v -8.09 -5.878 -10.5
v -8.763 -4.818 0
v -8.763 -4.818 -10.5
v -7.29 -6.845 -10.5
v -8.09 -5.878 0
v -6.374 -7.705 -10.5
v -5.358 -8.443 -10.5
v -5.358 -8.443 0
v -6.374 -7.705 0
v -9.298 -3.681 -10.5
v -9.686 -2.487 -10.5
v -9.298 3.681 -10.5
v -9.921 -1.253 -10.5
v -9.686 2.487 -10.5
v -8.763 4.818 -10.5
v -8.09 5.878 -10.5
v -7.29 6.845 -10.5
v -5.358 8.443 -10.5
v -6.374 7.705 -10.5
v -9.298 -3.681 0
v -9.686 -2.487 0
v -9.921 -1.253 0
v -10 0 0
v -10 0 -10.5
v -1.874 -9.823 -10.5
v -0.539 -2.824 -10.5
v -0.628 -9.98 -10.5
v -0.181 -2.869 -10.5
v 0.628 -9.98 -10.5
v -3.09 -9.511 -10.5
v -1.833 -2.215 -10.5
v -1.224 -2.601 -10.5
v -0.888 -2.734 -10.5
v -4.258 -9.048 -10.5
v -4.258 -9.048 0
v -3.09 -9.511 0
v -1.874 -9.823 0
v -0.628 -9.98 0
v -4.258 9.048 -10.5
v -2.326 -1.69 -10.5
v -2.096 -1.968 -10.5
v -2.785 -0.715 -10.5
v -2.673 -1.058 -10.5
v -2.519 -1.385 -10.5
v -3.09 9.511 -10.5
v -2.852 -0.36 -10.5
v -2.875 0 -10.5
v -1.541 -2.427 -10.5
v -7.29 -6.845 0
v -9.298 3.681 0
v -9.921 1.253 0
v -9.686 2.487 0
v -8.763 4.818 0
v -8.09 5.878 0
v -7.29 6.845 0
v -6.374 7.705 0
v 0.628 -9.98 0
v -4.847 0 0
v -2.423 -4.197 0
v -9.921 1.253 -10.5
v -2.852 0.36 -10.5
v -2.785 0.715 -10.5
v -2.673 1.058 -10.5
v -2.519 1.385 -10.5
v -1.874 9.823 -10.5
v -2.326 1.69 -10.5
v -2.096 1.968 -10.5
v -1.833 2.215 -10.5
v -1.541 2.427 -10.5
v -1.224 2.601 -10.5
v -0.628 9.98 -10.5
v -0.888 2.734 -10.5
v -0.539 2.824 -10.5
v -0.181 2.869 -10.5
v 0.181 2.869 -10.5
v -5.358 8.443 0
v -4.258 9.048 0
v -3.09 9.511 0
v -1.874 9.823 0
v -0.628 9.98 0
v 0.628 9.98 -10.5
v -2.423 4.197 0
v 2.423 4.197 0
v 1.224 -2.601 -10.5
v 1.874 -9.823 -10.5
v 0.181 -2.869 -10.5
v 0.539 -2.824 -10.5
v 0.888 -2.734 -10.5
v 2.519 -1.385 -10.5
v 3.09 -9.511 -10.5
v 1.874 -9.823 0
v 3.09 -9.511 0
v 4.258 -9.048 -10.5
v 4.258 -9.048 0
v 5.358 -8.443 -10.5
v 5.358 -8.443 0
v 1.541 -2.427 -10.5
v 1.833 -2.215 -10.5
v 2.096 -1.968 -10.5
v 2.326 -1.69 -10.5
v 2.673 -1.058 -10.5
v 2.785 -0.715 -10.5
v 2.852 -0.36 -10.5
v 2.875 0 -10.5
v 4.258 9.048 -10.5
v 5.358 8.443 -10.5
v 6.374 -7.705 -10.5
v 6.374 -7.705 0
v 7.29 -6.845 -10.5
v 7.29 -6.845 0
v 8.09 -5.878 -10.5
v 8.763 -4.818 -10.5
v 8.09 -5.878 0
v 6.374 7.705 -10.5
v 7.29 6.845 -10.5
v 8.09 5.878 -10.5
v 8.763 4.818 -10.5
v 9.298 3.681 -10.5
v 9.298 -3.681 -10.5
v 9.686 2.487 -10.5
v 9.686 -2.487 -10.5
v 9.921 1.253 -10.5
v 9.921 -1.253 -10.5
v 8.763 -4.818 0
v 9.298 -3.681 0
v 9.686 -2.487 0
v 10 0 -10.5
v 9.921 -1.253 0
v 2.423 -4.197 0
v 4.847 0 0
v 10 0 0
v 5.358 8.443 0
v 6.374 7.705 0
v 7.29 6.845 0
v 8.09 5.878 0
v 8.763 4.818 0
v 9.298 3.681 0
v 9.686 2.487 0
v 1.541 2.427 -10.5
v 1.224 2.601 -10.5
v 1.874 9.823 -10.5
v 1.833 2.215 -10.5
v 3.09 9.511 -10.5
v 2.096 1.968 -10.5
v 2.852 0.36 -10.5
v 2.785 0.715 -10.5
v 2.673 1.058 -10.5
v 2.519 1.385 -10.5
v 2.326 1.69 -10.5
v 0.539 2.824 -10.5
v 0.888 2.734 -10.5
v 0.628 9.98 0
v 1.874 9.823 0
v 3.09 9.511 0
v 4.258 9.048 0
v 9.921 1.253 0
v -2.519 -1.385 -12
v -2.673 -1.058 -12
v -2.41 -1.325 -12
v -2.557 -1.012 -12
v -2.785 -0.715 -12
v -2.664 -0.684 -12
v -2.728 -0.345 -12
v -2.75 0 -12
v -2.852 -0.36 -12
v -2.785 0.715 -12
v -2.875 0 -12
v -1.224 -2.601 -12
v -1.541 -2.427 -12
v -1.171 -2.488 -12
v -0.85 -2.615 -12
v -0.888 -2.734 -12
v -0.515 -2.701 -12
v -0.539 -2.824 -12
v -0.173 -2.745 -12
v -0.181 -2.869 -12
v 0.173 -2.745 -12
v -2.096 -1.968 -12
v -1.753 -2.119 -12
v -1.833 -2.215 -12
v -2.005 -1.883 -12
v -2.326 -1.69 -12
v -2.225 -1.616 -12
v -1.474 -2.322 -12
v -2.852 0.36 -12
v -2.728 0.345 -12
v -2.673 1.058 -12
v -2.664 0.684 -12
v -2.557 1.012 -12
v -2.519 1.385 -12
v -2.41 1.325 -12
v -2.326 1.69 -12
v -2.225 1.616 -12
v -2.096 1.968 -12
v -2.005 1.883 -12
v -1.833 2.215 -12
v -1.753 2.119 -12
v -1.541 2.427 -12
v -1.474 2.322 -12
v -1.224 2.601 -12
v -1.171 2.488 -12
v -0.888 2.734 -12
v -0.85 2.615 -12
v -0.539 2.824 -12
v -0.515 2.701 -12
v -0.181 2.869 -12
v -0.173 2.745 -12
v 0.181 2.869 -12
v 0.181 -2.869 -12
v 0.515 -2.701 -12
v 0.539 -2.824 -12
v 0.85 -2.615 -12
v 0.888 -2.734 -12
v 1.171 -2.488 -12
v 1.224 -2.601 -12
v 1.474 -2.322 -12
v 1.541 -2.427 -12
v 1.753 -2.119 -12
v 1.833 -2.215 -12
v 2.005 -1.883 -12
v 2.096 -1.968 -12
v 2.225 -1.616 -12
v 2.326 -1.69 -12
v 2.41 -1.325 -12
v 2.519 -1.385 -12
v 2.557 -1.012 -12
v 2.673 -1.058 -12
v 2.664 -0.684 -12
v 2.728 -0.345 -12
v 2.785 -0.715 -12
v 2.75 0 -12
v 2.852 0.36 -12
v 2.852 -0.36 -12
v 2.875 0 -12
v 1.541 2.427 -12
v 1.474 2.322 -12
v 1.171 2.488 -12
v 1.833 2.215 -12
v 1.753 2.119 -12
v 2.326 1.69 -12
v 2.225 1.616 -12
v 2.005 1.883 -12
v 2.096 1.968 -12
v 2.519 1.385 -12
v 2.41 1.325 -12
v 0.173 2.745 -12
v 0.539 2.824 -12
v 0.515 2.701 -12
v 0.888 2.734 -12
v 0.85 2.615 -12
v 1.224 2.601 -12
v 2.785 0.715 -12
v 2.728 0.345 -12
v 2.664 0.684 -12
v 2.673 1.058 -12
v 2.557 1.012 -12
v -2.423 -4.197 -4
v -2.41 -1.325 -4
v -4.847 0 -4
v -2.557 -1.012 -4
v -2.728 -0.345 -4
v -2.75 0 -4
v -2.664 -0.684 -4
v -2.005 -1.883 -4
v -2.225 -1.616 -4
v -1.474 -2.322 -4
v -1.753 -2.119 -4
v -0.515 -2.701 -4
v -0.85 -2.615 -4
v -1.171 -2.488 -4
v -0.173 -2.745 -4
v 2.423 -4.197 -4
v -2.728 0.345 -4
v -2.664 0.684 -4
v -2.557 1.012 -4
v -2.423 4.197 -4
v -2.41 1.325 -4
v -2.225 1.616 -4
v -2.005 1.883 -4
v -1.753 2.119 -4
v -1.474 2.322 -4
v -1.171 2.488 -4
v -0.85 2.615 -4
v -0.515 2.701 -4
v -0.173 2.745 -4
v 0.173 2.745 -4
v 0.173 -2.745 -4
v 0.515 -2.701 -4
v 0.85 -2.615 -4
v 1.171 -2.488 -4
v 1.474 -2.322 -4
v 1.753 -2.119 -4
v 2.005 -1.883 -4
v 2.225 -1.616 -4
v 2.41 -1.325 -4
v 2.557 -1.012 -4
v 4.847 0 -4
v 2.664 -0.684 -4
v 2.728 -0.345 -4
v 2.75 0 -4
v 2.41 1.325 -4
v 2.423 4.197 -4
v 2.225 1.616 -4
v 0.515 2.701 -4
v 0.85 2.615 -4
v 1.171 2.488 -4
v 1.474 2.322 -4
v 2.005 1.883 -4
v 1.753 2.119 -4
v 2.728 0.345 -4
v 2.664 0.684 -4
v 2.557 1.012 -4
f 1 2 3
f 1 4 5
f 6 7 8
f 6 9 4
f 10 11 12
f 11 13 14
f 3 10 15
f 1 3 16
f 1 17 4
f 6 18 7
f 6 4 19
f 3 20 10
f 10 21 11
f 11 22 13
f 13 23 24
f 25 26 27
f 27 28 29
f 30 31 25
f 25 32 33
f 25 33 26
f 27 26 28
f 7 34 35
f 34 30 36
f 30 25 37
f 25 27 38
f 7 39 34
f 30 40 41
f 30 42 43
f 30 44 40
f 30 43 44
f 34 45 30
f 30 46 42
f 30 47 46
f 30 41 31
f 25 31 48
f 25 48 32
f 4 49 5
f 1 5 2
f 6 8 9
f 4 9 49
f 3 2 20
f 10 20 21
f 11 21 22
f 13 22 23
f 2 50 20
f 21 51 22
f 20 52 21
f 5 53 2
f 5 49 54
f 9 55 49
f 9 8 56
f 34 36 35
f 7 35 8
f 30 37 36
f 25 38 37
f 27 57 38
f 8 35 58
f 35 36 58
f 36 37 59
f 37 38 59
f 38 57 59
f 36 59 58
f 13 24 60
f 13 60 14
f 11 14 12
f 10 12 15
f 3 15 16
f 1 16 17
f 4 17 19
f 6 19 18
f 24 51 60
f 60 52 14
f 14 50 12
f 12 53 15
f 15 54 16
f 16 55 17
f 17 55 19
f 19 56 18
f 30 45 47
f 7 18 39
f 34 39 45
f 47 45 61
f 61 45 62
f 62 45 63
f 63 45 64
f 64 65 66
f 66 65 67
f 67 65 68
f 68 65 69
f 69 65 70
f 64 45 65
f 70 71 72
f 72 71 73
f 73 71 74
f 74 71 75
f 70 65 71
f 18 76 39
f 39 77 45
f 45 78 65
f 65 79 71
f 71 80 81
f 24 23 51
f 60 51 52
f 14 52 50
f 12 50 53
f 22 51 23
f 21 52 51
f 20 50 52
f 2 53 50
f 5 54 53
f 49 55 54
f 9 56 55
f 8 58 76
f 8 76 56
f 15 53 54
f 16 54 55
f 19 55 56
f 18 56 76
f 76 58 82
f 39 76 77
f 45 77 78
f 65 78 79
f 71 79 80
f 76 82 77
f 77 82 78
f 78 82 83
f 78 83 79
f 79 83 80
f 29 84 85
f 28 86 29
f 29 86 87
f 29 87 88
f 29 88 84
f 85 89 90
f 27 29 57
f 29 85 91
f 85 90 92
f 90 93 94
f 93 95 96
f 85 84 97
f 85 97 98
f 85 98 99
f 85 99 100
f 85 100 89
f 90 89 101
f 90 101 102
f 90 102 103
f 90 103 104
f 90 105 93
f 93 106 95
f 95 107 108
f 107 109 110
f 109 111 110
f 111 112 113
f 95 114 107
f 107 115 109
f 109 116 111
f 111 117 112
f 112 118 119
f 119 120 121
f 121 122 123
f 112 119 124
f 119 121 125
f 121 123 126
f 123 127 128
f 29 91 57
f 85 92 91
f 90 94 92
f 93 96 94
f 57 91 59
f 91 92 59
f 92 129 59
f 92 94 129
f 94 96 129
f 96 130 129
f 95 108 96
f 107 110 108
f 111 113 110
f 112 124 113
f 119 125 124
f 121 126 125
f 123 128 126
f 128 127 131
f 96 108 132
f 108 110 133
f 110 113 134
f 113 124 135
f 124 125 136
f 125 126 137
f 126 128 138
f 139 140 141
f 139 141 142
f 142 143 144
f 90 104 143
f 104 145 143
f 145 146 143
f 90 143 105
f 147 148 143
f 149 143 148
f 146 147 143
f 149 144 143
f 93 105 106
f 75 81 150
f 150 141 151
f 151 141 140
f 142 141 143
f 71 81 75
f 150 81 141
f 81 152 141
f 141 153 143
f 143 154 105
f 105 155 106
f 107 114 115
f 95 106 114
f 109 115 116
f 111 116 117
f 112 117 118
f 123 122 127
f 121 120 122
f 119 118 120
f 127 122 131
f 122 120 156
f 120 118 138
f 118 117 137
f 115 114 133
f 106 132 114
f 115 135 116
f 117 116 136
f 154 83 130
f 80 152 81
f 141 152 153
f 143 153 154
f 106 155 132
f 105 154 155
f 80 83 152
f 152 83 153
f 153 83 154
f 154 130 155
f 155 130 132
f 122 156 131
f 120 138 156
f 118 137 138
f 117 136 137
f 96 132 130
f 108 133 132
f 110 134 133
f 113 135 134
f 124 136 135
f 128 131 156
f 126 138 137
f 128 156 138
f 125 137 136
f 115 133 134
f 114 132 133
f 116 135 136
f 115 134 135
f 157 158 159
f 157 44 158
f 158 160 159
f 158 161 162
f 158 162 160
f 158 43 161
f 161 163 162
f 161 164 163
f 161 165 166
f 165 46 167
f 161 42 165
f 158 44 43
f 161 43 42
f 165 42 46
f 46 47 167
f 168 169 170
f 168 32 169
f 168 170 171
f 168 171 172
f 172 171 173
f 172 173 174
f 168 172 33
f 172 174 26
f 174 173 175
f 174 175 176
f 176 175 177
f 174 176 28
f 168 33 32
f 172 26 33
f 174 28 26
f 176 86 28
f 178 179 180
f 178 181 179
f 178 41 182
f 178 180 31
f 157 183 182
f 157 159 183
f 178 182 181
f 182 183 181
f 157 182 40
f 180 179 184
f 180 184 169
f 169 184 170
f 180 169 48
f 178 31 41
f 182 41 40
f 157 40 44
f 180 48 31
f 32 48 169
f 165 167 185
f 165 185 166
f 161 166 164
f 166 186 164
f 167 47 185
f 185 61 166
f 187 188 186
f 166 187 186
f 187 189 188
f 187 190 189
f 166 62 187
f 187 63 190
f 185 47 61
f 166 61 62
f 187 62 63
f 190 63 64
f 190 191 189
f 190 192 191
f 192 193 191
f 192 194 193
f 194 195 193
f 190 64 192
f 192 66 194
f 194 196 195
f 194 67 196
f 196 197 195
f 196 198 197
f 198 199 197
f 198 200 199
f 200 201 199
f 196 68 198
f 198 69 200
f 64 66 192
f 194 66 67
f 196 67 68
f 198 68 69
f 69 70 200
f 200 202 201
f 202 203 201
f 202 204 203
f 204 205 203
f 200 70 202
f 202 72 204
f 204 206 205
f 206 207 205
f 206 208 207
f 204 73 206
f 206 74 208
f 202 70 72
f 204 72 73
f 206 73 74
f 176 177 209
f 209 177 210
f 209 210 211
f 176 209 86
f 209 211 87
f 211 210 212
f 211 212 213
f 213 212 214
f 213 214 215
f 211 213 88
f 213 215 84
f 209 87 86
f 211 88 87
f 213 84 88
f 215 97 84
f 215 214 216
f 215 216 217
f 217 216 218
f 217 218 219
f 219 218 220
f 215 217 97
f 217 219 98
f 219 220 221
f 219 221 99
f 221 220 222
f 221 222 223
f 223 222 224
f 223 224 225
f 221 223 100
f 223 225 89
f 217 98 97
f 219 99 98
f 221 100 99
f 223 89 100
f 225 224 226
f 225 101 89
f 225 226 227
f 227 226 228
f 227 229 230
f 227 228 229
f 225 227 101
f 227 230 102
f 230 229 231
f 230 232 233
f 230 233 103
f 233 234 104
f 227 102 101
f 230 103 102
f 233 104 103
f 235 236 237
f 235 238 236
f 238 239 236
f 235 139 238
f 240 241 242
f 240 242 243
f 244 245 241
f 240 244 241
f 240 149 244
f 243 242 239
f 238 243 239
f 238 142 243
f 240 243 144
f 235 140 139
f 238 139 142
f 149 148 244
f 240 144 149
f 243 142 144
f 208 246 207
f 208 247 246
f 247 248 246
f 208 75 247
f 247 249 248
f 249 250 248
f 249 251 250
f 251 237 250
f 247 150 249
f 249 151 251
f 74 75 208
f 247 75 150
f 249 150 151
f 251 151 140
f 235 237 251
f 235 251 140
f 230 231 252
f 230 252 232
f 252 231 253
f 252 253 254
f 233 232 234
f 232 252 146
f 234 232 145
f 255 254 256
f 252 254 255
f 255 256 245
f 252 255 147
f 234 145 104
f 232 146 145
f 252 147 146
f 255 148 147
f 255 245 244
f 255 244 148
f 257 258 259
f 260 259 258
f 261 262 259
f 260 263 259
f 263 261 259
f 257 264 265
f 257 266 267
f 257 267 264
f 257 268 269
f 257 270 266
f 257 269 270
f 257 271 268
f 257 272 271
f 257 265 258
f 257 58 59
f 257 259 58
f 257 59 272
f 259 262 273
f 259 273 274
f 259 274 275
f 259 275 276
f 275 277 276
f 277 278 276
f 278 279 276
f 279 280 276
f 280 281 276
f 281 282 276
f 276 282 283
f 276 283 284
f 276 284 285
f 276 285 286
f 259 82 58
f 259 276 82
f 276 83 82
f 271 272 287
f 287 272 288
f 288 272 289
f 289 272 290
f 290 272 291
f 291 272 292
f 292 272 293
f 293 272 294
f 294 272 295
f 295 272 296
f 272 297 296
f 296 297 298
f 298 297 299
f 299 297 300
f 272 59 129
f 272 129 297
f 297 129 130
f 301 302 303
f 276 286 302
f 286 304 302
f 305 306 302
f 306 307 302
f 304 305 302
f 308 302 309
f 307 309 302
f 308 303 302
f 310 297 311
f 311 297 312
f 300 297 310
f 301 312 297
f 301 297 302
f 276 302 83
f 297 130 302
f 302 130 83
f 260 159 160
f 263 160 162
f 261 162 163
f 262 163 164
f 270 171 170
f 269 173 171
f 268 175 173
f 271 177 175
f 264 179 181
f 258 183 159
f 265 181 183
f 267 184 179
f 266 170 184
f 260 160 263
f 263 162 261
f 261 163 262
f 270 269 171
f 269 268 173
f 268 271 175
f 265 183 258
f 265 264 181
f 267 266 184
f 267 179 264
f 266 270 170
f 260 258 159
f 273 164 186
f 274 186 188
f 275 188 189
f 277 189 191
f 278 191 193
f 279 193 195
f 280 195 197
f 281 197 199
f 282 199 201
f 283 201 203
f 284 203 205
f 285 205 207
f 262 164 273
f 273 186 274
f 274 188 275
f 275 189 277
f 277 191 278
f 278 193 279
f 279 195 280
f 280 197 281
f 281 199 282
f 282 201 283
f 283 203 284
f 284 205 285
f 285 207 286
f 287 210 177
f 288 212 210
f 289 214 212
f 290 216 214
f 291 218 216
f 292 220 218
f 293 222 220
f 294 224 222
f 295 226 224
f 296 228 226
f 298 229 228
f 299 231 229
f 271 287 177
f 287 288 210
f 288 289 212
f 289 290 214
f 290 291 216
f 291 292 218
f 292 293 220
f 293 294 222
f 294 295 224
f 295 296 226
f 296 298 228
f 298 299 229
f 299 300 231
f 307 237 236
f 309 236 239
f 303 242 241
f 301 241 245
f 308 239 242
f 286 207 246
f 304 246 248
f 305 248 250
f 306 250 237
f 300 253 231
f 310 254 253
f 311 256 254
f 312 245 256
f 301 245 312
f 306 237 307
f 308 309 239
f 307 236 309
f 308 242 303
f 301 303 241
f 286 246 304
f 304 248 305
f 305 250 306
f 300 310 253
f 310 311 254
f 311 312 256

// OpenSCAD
$fn = 50;

difference() {
	union() {
		translate(v = [0, 0, -10.5]) {
			cylinder(h = 10.5, r = 10.0);
		}
		#translate(v = [0, 0, -12.0]) {
			cylinder(h = 12, r = 2.875);
		}
	}
	union() {
		translate(v = [0, 0, 0]) {
			rotate(a = [0, 0, 0]) {
				difference() {
					union() {
						translate(v = [0, 0, -4]) {
							linear_extrude(height = 4) {
								polygon(points = [[4.8468, 0.0], [2.4234000000000004, 4.197451927062417], [-2.423399999999999, 4.197451927062417], [-4.8468, 5.935618106107392e-16], [-2.423400000000002, -4.197451927062416], [2.423399999999997, -4.197451927062419]]);
							}
						}
					}
					union();
				}
			}
		}
		#translate(v = [0, 0, -100.0]) {
			cylinder(h = 200, r = 2.75);
		}
	}
}
